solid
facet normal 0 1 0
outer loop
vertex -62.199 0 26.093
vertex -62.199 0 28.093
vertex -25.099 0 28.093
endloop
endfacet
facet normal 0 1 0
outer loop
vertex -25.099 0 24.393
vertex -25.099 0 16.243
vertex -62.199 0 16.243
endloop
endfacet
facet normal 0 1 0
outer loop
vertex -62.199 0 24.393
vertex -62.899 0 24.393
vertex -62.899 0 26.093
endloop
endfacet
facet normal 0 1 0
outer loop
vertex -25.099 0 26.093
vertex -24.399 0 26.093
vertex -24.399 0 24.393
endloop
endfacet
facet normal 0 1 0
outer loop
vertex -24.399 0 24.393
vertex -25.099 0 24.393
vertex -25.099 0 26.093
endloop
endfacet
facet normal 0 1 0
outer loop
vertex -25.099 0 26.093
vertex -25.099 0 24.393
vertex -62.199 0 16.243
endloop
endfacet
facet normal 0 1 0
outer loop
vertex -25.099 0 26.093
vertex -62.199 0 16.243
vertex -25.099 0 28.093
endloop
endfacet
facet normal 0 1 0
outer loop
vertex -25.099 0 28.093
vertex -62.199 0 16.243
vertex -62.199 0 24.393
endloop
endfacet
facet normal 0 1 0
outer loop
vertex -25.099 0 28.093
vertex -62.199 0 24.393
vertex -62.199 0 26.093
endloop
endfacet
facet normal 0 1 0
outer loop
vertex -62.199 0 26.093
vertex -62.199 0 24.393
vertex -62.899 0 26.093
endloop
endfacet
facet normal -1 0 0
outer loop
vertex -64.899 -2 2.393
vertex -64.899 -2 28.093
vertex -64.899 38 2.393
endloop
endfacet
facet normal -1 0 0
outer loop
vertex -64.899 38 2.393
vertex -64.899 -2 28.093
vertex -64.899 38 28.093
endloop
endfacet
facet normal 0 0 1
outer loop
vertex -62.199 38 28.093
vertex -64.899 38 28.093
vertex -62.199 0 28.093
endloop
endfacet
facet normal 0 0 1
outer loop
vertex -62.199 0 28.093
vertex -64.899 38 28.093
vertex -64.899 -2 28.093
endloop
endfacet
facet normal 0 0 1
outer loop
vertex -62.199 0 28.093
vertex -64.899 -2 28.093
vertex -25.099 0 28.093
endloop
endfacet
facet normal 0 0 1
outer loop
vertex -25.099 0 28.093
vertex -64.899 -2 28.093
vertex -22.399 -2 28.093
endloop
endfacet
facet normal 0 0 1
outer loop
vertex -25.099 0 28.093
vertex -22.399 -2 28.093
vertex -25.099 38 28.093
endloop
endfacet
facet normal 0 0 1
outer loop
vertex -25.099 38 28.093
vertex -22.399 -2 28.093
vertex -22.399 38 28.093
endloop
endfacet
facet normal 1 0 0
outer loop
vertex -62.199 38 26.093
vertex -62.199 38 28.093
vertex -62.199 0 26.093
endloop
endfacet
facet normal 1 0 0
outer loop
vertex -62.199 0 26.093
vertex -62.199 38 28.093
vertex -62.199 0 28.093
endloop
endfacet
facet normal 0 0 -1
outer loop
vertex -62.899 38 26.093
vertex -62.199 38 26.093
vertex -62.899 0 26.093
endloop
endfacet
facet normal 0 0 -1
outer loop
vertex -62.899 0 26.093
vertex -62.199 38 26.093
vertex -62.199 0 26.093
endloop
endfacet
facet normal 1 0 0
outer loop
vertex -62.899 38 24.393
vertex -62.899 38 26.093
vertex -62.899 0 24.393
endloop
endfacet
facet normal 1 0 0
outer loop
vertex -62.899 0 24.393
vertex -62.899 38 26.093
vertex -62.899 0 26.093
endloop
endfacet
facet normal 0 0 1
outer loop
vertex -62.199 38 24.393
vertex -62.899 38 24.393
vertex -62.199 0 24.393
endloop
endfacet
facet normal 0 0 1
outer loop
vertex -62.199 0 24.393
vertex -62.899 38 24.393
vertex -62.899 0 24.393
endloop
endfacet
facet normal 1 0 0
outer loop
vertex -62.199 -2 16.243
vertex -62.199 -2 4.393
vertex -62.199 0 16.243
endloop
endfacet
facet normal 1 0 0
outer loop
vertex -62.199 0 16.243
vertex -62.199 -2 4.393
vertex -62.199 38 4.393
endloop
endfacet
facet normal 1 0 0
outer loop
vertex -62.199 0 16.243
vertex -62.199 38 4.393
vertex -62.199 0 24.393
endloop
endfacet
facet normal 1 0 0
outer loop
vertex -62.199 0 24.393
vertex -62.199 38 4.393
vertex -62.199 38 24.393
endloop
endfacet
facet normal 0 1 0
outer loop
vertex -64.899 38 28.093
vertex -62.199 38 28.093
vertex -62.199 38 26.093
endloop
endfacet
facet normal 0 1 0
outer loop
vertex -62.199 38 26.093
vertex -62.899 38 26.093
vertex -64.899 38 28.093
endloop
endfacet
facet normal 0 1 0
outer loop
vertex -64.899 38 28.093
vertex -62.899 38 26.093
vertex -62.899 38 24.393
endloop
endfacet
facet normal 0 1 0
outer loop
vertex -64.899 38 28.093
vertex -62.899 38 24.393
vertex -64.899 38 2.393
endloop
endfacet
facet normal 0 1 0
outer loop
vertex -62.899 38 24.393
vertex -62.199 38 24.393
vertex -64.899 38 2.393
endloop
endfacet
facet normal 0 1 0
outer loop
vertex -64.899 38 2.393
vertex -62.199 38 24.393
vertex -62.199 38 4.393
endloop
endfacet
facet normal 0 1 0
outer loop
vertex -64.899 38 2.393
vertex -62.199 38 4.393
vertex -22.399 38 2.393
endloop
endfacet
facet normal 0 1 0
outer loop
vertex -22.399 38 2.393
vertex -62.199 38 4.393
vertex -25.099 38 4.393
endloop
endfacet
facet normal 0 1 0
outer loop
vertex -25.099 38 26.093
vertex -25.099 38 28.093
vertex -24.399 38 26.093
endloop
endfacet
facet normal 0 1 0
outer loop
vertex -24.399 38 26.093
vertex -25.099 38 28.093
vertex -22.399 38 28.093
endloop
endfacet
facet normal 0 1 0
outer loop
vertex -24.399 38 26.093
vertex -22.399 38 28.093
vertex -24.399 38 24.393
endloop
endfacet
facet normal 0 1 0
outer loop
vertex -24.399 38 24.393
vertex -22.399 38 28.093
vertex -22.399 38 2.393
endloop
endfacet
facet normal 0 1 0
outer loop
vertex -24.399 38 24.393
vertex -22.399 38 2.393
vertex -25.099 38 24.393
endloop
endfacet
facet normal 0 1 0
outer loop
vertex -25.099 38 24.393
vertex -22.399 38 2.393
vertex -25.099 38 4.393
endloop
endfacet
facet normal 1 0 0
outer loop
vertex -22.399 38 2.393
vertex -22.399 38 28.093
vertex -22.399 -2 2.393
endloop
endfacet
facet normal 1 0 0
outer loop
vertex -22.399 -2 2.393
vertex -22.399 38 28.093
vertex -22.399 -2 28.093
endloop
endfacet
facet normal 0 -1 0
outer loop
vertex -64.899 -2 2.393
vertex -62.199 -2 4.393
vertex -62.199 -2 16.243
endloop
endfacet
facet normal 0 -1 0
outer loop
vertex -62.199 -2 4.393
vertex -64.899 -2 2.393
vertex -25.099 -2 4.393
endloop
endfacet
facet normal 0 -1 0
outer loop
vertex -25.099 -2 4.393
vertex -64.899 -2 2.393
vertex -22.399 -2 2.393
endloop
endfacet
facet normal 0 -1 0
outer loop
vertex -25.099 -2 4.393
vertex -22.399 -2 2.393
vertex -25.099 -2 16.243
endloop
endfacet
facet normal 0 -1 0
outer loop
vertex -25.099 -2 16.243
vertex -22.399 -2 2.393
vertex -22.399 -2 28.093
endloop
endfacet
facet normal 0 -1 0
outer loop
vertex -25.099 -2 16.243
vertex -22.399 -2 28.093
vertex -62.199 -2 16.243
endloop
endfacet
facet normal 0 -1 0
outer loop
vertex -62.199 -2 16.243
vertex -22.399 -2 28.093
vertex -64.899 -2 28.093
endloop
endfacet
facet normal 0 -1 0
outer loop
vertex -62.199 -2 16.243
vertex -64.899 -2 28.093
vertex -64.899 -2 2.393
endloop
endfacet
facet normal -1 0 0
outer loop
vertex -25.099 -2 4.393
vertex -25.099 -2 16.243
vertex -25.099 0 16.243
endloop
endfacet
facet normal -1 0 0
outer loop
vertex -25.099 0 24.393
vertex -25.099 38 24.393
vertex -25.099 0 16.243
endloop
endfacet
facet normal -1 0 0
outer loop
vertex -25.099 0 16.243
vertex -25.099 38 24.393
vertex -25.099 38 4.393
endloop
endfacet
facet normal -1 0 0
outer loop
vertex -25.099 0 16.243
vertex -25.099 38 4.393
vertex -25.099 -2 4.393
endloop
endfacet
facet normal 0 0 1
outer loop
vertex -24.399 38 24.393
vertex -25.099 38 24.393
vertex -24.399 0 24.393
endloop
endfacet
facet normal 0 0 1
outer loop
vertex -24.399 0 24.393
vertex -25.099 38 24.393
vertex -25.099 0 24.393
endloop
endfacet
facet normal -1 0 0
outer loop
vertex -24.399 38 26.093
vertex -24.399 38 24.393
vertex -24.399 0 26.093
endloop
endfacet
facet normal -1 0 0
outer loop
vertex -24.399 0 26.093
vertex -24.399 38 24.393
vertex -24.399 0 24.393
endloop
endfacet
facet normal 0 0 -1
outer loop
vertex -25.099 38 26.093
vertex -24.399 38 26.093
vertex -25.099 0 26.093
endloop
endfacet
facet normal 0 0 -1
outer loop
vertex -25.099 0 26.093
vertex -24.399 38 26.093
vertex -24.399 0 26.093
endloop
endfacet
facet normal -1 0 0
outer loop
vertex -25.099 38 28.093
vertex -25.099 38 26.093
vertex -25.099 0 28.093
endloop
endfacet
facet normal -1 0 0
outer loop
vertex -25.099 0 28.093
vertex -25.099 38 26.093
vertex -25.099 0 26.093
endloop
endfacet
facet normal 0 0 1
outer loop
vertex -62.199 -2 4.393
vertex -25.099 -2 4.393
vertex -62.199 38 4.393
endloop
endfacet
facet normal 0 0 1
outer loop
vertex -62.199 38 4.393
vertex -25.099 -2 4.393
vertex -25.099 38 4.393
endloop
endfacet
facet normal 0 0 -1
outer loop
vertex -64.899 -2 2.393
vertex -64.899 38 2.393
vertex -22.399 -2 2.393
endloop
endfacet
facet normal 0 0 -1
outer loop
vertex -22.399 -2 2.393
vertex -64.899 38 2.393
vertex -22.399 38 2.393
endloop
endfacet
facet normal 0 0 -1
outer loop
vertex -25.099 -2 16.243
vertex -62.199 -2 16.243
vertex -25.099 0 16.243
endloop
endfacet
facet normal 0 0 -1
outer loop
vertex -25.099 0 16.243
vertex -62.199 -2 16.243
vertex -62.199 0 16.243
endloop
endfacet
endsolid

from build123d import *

# Parameters (mm, degrees)
BOSS_EXTRUDE1_DEPTH   = 38
BOSS_EXTRUDE1_2_DEPTH = 38
SKETCH2_W             = 42.5
SKETCH2_H             = 5.7
BOSS_EXTRUDE2_DEPTH   = 2
BOSS_EXTRUDE3_DEPTH   = 18
SKETCH4_W             = 42.5
SKETCH4_H             = 40
BOSS_EXTRUDE4_DEPTH   = 2
SKETCH5_W             = 37.1
SKETCH5_H             = 11.85
CUT_EXTRUDE1_DEPTH    = 81.281509747


with BuildPart() as part:
    # Sketch1 → Boss-Extrude1 (new body)
    with BuildSketch(Plane(origin=(0, 0, 0), x_dir=(1, 0, 0), z_dir=(0, 1, 0))):
        Polygon((-62.898983402, -26.09346473), (-62.898983402, -24.39346473), (-62.198983402, -24.39346473), (-62.198983402, -22.39346473), (-64.898983402, -22.39346473), (-64.898983402, -28.09346473), (-62.198983402, -28.09346473), (-62.198983402, -26.09346473), align=None)
    extrude(amount=BOSS_EXTRUDE1_DEPTH)



with BuildPart() as body_2:
    # Sketch1 → Boss-Extrude1 2 (new body)
    with BuildSketch(Plane(origin=(0, 0, 0), x_dir=(1, 0, 0), z_dir=(0, 1, 0))):
        Polygon((-25.098983402, -22.39346473), (-25.098983402, -24.39346473), (-24.398983402, -24.39346473), (-24.398983402, -26.09346473), (-25.098983402, -26.09346473), (-25.098983402, -28.09346473), (-22.398983402, -28.09346473), (-22.398983402, -22.39346473), align=None)
    extrude(amount=BOSS_EXTRUDE1_2_DEPTH)


with BuildPart() as part_1:
    add(part.part)

    add(body_2.part)  # Boss-Extrude2 merges body 2
    # Sketch2 → Boss-Extrude2 (add)
    with BuildSketch(Plane(origin=(0, 0, 0), x_dir=(1, 0, 0), z_dir=(0, 1, 0))):
        with Locations((-43.648983402, -25.24346473)):
            Rectangle(SKETCH2_W, SKETCH2_H)
    extrude(amount=-BOSS_EXTRUDE2_DEPTH)

    # Sketch3 → Boss-Extrude3 (add)
    with BuildSketch(Plane(origin=(0, 0, 22.39346473), x_dir=(-1, 0, 0), z_dir=(0, 0, -1))):
        Polygon((64.898983402, 38), (62.198983402, 38), (62.198983402, 0), (25.098983402, 0), (25.098983402, 38), (22.398983402, 38), (22.398983402, -2), (64.898983402, -2), align=None)
    extrude(amount=BOSS_EXTRUDE3_DEPTH)

    # Sketch4 → Boss-Extrude4 (add)
    with BuildSketch(Plane(origin=(0, 0, 4.39346473), x_dir=(-1, 0, 0), z_dir=(0, 0, -1))):
        with Locations((43.648983402, 18)):
            Rectangle(SKETCH4_W, SKETCH4_H)
    extrude(amount=BOSS_EXTRUDE4_DEPTH)

    # Sketch5 → Cut-Extrude1 (cut, through all)
    with BuildSketch(Plane(origin=(0, 0, 0), x_dir=(1, 0, 0), z_dir=(0, 1, 0))):
        with Locations((-43.648983402, -10.31846473)):
            Rectangle(SKETCH5_W, SKETCH5_H)
    extrude(amount=-CUT_EXTRUDE1_DEPTH, mode=Mode.SUBTRACT)


solid = part_1.part
